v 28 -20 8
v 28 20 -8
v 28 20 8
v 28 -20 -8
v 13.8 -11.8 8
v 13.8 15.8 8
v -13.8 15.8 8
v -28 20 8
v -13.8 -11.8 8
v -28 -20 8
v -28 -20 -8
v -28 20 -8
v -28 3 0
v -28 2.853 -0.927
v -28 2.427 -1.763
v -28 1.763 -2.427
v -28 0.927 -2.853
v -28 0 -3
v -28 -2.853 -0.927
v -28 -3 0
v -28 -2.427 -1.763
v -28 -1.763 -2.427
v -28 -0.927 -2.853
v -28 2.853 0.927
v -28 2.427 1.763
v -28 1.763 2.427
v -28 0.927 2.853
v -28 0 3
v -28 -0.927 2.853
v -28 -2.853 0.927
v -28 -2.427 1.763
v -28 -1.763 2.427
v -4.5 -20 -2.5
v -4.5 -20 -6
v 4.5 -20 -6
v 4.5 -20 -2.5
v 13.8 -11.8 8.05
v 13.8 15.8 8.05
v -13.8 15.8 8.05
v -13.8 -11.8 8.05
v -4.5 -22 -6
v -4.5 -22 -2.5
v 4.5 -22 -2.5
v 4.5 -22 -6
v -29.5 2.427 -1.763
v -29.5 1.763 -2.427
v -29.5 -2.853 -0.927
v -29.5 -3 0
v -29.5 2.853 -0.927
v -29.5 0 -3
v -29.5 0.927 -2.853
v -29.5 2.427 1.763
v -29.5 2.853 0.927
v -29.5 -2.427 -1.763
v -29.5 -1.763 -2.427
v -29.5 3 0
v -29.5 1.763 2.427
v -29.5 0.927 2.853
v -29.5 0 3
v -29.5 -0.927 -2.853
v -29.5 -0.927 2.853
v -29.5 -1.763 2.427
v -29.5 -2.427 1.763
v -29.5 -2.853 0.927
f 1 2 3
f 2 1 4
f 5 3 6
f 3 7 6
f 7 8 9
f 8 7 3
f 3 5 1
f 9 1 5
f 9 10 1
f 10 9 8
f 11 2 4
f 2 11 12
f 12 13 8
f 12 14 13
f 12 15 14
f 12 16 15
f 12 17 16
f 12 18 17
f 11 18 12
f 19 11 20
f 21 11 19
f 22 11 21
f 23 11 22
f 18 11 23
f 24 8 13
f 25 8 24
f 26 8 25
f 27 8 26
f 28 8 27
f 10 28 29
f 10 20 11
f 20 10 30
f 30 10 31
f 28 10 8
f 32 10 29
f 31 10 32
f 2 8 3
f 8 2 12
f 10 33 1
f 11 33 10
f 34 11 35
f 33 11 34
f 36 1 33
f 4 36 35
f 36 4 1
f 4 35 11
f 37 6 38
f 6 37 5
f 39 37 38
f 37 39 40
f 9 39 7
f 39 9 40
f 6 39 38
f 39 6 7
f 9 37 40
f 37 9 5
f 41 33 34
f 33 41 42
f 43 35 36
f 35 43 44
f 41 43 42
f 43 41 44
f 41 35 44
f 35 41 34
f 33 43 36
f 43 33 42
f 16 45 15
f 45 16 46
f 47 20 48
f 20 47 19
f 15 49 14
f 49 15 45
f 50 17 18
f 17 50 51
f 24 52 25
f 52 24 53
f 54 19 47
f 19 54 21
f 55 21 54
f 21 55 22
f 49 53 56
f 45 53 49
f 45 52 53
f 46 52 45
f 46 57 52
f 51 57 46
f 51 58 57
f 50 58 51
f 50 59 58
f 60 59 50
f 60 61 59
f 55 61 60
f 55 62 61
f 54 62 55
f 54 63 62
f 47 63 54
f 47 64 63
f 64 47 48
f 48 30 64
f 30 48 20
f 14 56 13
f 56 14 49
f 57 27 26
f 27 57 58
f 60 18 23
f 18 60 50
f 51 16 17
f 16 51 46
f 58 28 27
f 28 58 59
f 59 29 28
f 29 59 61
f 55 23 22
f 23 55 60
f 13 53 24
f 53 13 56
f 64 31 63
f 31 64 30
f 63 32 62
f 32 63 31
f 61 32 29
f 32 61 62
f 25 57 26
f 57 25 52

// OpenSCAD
// M5Stack CoreInk - Reference Model
// Dimensions from official specs: 56 x 40 x 16mm
// Display: GDEW0154M09, active area 27.6 x 27.6mm, 200x200px

// Overall body
coreink_w = 56;   // width
coreink_h = 40;   // height (short axis)
coreink_d = 16;   // depth

// Display window (active area)
display_w = 27.6;
display_h = 27.6;
display_offset_y = 2;  // display is slightly above center

// USB-C port (bottom center)
usbc_w = 9;
usbc_h = 3.5;

// Side button (left side)
button_w = 3;
button_h = 6;
button_z = 8;  // height from bottom

module coreink_body() {
    color("DimGray")
    cube([coreink_w, coreink_h, coreink_d], center=true);
}

module coreink_display() {
    color("WhiteSmoke")
    translate([0, display_offset_y, coreink_d/2 - 0.5])
        cube([display_w, display_h, 1.1], center=true);
}

module coreink_usbc() {
    color("Silver")
    translate([0, -coreink_h/2, -coreink_d/2 + usbc_h/2 + 2])
        rotate([90, 0, 0])
            cube([usbc_w, usbc_h, 4], center=true);
}

module coreink_button() {
    color("DarkGray")
    translate([-coreink_w/2, 0, -coreink_d/2 + button_z])
        rotate([0, 90, 0])
            cylinder(d=button_h, h=button_w, center=true, $fn=20);
}

module coreink() {
    coreink_body();
    coreink_display();
    coreink_usbc();
    coreink_button();
}

coreink();
